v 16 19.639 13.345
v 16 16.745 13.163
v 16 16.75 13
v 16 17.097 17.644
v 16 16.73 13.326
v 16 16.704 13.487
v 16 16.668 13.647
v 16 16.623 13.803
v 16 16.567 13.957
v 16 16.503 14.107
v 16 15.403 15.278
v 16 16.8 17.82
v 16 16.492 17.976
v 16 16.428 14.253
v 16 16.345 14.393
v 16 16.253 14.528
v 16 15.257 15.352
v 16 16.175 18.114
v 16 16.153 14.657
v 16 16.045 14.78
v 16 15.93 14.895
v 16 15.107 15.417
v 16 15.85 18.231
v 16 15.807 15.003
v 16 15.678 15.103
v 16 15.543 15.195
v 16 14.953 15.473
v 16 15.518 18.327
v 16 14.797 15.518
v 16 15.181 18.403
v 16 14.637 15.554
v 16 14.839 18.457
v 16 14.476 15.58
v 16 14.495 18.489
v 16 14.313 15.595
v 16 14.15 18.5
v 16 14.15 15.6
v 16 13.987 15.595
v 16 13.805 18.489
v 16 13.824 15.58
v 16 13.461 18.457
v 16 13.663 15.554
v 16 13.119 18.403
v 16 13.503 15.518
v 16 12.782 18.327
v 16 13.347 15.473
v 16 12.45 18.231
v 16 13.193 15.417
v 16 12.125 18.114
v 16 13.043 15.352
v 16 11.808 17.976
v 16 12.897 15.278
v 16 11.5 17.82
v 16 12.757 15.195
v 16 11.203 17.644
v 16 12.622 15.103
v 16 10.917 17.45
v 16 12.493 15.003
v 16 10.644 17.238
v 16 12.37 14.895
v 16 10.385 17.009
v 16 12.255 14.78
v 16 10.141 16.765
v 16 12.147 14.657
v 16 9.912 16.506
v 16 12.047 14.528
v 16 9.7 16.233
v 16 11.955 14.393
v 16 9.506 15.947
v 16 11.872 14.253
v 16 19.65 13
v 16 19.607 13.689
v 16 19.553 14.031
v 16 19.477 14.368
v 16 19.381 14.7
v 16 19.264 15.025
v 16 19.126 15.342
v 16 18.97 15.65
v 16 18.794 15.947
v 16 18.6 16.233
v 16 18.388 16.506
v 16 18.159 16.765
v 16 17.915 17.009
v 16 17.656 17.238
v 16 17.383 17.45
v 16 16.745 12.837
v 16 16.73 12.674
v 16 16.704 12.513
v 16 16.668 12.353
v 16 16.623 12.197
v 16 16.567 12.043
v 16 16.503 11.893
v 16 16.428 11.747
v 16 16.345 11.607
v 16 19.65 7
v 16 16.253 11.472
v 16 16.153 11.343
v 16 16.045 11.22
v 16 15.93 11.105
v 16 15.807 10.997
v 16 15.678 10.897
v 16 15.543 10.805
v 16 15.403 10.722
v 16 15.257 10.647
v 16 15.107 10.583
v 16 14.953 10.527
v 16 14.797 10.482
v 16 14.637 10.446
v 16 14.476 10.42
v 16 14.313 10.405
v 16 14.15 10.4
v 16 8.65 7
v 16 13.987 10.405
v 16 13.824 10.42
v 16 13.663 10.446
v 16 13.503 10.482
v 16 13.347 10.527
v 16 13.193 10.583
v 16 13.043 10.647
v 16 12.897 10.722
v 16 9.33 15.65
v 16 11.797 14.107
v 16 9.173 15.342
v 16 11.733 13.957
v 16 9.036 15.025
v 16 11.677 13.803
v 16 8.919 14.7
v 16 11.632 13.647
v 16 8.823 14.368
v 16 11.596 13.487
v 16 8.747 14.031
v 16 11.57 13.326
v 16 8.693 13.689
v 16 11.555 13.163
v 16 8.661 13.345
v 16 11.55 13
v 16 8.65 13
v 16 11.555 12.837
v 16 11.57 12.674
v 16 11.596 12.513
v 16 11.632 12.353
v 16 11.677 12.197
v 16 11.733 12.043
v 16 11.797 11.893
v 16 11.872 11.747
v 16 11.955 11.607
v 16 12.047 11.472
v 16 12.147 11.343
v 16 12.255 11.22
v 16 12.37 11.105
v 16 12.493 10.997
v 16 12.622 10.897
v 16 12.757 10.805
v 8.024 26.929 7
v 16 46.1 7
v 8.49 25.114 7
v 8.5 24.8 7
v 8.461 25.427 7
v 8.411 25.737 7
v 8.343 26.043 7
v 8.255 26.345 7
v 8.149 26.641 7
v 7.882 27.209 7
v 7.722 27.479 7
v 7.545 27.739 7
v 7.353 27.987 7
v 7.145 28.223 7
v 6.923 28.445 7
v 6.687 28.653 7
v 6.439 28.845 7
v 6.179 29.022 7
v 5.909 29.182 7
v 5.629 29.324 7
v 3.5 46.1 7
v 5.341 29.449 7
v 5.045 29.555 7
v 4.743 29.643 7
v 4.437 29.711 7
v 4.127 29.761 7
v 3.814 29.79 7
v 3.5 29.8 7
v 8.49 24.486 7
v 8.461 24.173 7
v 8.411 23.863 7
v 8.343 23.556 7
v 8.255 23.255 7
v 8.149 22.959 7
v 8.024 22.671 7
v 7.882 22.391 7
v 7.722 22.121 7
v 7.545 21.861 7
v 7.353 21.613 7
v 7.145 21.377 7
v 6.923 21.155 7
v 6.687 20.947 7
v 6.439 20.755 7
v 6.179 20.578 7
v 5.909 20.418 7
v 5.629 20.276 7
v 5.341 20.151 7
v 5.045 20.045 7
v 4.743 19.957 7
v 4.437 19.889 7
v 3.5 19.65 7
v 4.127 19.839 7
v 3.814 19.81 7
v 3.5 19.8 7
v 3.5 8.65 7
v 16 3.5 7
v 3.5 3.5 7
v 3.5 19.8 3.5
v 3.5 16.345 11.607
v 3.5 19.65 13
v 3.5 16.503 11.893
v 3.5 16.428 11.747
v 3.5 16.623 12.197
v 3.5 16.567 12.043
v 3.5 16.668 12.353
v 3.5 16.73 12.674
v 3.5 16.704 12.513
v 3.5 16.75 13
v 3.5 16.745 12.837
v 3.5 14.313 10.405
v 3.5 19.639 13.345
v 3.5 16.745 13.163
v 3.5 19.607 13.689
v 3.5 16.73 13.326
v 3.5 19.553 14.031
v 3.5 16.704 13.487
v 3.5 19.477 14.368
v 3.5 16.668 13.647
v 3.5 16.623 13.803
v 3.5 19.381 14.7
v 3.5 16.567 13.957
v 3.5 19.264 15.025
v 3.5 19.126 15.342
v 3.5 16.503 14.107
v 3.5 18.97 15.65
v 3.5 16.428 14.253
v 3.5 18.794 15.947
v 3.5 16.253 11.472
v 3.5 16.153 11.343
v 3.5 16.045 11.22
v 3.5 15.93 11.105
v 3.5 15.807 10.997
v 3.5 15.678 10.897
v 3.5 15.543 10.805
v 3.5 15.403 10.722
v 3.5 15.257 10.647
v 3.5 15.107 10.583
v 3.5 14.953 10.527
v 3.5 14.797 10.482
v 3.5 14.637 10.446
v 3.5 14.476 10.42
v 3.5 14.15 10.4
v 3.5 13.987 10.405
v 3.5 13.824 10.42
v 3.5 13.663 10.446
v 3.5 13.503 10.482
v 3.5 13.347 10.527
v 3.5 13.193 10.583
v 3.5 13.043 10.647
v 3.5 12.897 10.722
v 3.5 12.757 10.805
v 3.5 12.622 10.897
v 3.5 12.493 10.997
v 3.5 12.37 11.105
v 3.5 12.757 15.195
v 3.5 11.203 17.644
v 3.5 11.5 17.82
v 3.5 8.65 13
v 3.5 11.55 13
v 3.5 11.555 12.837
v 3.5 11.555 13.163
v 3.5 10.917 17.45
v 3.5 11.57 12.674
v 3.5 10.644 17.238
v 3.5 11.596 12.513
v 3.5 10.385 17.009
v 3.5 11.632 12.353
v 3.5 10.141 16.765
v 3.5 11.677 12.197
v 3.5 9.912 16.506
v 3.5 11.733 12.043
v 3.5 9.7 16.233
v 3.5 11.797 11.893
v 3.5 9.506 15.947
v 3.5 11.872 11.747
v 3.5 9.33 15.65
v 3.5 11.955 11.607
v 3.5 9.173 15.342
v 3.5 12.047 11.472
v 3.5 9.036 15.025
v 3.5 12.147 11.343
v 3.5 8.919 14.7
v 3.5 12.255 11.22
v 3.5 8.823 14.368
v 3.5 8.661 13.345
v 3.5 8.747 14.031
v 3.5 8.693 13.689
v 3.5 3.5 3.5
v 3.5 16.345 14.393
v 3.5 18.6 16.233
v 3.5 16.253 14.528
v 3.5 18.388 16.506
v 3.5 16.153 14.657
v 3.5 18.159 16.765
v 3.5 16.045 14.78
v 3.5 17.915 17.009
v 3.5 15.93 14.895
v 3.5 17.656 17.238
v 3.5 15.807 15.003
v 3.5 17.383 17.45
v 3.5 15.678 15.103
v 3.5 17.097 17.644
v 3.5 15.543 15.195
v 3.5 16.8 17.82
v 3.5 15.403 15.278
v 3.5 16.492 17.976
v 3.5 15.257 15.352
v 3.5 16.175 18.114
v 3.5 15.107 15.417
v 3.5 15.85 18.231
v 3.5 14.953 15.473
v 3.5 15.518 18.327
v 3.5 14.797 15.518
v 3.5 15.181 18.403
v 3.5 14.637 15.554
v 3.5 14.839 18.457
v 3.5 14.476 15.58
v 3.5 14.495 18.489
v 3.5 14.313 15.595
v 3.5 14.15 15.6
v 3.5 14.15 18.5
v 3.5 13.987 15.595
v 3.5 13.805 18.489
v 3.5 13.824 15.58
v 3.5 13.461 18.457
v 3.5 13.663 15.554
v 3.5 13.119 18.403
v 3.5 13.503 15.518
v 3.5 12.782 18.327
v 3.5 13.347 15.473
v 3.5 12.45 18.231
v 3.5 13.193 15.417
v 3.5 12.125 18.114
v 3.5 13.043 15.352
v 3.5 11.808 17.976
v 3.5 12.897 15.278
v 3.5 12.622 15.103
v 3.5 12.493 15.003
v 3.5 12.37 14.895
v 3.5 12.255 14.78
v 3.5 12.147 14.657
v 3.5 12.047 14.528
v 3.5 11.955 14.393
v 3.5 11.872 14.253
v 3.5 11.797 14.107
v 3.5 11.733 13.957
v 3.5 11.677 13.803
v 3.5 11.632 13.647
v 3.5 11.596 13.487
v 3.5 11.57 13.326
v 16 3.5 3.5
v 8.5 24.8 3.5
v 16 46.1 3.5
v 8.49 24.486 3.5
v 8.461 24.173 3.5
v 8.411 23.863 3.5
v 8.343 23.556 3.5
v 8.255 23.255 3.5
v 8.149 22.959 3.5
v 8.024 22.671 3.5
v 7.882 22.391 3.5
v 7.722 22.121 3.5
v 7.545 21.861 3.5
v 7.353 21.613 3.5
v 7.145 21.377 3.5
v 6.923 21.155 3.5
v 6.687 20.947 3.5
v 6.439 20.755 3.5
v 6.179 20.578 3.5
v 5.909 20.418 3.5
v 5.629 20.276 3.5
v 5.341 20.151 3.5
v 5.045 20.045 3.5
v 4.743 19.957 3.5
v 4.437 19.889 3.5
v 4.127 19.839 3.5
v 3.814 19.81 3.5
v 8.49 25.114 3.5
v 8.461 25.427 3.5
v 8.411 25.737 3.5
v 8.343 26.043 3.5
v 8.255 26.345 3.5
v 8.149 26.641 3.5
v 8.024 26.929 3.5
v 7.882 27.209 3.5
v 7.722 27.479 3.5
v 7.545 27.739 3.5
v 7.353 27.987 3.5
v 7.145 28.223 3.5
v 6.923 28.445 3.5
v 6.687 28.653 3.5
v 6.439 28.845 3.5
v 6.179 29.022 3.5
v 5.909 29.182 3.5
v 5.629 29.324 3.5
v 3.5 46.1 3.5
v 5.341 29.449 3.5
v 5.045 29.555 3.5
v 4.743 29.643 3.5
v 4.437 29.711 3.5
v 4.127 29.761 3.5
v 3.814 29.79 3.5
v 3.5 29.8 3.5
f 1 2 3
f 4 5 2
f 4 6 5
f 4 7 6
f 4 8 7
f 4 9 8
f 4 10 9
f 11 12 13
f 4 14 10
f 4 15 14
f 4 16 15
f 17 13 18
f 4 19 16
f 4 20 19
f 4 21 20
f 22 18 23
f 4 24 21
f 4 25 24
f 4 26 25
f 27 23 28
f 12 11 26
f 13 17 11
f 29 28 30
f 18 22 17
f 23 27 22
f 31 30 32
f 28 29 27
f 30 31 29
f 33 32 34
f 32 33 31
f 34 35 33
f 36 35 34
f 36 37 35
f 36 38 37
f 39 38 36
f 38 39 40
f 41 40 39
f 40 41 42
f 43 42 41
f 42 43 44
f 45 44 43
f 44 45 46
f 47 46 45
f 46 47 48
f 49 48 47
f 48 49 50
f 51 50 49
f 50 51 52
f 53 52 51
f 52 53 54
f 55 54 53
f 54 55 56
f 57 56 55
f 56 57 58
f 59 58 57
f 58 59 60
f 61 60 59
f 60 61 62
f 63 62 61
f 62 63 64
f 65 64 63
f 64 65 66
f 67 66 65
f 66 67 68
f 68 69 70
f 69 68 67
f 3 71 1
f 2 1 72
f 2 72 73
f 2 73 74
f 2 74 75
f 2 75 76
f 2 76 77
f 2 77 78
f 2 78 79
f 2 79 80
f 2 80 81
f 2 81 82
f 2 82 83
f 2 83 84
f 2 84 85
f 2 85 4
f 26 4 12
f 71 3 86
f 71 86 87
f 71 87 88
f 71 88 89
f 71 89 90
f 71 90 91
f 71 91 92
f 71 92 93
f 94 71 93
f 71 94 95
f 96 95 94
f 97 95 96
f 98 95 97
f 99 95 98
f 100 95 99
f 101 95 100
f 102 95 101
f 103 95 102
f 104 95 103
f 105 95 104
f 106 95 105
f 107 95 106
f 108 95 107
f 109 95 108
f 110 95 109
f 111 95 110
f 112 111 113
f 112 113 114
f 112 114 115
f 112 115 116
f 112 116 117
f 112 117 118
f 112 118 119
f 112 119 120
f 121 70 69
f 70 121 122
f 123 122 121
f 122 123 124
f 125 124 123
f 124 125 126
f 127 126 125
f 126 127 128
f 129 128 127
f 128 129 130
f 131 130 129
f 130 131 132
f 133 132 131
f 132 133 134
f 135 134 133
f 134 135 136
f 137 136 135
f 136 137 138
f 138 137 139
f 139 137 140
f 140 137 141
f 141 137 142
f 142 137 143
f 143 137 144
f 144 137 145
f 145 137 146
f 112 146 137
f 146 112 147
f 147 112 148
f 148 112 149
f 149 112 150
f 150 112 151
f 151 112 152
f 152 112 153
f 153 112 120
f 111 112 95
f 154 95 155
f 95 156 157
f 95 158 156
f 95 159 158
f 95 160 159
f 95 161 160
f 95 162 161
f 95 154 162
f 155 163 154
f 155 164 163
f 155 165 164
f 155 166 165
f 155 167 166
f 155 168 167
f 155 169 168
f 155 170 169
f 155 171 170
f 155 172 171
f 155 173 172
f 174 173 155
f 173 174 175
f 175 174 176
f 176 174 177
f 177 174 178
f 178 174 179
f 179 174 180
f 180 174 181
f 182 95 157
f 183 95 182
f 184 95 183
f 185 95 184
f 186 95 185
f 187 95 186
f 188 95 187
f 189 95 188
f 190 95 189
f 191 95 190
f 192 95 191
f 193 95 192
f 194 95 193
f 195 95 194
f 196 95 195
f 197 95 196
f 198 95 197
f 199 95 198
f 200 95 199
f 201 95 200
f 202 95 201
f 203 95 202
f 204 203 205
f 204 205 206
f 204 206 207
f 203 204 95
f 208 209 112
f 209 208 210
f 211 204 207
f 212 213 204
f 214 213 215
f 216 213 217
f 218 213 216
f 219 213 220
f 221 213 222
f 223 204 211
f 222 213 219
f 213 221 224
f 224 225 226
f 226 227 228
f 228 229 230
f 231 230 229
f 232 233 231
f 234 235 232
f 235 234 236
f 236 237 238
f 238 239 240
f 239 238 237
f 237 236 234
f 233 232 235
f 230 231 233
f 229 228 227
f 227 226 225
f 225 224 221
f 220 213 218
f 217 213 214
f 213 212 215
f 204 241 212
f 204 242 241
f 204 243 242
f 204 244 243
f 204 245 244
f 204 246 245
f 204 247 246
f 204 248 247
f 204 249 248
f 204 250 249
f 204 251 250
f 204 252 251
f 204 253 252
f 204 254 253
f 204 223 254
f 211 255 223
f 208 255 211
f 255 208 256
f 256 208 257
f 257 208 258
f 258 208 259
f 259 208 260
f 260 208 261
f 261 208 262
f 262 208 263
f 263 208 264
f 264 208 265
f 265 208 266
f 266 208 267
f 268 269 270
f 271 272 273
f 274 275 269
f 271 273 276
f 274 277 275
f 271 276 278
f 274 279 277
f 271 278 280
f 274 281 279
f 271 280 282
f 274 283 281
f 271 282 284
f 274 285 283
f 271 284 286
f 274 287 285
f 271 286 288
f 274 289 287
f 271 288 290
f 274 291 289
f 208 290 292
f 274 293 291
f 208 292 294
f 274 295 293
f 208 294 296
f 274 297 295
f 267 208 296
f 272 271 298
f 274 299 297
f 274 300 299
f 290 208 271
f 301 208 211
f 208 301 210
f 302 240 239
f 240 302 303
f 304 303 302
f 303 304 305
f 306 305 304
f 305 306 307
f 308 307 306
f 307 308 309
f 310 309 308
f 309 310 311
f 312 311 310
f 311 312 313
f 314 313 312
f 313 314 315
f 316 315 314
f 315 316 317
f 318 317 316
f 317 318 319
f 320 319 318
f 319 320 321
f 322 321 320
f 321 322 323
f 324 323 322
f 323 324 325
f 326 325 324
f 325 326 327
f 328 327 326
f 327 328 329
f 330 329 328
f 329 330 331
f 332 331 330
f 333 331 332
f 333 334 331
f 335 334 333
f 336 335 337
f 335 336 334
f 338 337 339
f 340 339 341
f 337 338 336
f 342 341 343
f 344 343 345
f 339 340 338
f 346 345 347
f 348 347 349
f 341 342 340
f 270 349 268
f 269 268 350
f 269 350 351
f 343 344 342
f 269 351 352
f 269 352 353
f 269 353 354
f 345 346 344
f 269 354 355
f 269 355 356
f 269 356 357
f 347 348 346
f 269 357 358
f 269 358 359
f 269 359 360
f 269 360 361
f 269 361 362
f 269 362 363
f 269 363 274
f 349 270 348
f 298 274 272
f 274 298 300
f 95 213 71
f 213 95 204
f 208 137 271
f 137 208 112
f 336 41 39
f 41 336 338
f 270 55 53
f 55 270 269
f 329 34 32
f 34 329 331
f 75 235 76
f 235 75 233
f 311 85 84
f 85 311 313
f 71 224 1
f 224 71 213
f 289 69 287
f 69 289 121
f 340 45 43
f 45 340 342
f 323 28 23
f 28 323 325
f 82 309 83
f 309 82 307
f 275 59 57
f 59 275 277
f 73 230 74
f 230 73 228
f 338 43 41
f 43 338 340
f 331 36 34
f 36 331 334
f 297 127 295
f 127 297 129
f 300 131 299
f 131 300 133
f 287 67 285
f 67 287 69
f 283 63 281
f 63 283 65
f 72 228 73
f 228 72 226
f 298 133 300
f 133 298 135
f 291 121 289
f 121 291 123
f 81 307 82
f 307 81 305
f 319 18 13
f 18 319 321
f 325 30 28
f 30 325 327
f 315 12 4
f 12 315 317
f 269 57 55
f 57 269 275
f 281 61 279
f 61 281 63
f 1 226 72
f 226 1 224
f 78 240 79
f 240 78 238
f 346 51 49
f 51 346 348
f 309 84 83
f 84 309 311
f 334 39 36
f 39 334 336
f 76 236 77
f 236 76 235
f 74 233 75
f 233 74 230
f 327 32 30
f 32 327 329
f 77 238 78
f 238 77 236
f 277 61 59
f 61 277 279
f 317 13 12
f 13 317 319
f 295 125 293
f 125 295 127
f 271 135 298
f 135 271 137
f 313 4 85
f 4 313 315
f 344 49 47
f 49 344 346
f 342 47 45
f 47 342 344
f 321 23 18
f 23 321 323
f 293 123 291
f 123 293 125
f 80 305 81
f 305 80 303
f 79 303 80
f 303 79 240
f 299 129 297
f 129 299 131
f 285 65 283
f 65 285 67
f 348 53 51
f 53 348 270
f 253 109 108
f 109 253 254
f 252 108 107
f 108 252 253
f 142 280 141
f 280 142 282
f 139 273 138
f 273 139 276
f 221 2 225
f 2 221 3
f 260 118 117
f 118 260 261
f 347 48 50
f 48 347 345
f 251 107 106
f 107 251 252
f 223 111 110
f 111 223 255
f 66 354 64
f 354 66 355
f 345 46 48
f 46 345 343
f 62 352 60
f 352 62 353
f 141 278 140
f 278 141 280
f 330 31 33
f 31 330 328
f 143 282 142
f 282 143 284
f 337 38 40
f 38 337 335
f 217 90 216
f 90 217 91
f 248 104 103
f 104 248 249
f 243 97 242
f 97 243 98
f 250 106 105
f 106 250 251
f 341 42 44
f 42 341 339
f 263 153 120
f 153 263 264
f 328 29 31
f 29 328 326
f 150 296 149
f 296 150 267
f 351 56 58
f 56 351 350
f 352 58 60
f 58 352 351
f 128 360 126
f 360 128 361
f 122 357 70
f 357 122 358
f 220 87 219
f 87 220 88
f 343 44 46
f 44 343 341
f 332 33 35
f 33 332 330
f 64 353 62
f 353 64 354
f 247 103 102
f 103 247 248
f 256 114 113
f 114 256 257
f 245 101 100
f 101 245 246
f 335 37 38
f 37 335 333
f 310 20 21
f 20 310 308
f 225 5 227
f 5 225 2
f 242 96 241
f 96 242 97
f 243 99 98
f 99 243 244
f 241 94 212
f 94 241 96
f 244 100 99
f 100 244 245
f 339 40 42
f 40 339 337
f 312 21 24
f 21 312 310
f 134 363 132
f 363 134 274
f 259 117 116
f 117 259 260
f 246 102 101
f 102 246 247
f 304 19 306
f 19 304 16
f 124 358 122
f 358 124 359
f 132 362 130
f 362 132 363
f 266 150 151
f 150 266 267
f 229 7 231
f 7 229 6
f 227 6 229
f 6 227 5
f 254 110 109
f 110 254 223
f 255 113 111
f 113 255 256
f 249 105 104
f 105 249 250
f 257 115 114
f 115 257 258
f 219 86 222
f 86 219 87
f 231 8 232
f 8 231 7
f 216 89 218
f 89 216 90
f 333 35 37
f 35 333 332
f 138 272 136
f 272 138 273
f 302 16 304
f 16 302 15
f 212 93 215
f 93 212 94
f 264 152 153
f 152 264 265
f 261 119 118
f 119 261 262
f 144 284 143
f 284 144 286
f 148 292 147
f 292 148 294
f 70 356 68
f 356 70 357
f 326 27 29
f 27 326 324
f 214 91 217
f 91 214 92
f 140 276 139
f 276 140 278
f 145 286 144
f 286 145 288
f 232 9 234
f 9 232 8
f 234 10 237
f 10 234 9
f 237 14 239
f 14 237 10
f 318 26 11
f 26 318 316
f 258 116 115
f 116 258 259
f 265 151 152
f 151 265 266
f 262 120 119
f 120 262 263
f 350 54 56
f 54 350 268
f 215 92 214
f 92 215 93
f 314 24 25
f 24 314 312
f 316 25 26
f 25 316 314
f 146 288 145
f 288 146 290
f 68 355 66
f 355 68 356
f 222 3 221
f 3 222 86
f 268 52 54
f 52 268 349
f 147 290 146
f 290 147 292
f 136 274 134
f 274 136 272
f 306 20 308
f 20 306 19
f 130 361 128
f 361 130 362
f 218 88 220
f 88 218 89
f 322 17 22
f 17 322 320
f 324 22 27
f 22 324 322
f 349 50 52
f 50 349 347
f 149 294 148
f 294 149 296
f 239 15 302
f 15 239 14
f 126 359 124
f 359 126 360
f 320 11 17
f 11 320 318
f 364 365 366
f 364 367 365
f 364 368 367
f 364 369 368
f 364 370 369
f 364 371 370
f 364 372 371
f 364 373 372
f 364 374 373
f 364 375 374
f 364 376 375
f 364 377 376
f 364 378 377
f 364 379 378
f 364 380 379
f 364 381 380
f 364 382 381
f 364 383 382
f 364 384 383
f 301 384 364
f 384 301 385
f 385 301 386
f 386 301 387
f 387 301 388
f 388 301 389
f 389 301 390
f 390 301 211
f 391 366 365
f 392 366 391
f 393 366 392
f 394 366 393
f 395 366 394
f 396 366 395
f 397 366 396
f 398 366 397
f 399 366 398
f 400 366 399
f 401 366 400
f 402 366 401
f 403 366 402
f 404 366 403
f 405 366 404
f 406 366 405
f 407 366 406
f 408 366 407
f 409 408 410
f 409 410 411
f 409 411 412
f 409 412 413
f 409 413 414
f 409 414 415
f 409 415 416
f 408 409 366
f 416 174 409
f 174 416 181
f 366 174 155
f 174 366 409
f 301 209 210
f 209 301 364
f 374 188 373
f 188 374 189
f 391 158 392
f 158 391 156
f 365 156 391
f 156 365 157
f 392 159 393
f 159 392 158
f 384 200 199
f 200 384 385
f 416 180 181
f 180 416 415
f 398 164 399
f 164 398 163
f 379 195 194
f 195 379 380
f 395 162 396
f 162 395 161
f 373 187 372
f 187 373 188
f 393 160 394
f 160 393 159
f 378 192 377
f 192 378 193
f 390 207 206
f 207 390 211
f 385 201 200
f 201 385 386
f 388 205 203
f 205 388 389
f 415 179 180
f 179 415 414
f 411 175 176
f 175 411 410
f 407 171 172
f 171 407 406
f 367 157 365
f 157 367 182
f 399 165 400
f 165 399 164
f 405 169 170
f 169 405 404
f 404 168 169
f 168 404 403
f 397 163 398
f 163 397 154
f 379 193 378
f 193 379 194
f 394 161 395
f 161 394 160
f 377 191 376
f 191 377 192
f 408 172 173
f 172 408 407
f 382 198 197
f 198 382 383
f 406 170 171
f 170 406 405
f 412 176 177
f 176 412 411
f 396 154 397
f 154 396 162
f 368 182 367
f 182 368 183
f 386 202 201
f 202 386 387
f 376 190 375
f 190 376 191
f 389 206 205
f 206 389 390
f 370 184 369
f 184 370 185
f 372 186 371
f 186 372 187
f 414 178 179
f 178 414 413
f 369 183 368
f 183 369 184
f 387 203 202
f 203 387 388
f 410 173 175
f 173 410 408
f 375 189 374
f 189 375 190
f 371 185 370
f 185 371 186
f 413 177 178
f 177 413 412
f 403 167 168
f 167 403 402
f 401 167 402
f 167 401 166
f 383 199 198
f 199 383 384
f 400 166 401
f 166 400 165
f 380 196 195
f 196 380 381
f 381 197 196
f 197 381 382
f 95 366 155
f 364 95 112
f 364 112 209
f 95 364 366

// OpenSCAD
length = 43-.4;//52;
width = 88-.4;//86;
height = 32;
wall = 3.5;
o_width = width + wall + wall;
o_length = length + wall + wall;
o_height = height + wall;

resolution = 100;

$fn = resolution;

// outer box
standoff_id=3.45;
standoff_od=7;
standoff_od_wall_depth = wall-2;
standoff_width = 80.8;
standoff_length = 47.25;
//difference(){
    // main box
    //cube([o_width, o_length, o_height]);
    translate([wall, wall, 0]) {
        translate([0, 0, wall]) {
            // 9999 to take out the whole face
            difference(){
            cube([width, length, wall]);
                translate([width, length/2, 0]) {
                    cylinder(h=100, r=5);
                }
                translate([0, length/2, 0]) {
                    cylinder(h=100, r=5);
                }
                translate([12.5, 0, 0]) {
                    cube([width, length, wall]);
                }

            }
        }
    }
//}


//add the pin mechanism
pin_od = 11;
pin_id = 5.2;
pin_len = 16;
wall_offset = 6;
translate([wall, (1/4)*length+wall-pin_od/2, wall+wall]){
    difference() {
        union(){
            cube([pin_len-wall, pin_od, wall_offset]);
            rotate([0,90,0]) {
                translate([-wall_offset,pin_od/2,0]) {
                    cylinder(h=pin_len-wall, d=pin_od);
                }
            }
        }
        rotate([0,90,0]) {
            translate([-wall_offset,pin_od/2,0]) {
                cylinder(h=pin_len-wall, d=pin_id);   
            }
        }
    }
}
